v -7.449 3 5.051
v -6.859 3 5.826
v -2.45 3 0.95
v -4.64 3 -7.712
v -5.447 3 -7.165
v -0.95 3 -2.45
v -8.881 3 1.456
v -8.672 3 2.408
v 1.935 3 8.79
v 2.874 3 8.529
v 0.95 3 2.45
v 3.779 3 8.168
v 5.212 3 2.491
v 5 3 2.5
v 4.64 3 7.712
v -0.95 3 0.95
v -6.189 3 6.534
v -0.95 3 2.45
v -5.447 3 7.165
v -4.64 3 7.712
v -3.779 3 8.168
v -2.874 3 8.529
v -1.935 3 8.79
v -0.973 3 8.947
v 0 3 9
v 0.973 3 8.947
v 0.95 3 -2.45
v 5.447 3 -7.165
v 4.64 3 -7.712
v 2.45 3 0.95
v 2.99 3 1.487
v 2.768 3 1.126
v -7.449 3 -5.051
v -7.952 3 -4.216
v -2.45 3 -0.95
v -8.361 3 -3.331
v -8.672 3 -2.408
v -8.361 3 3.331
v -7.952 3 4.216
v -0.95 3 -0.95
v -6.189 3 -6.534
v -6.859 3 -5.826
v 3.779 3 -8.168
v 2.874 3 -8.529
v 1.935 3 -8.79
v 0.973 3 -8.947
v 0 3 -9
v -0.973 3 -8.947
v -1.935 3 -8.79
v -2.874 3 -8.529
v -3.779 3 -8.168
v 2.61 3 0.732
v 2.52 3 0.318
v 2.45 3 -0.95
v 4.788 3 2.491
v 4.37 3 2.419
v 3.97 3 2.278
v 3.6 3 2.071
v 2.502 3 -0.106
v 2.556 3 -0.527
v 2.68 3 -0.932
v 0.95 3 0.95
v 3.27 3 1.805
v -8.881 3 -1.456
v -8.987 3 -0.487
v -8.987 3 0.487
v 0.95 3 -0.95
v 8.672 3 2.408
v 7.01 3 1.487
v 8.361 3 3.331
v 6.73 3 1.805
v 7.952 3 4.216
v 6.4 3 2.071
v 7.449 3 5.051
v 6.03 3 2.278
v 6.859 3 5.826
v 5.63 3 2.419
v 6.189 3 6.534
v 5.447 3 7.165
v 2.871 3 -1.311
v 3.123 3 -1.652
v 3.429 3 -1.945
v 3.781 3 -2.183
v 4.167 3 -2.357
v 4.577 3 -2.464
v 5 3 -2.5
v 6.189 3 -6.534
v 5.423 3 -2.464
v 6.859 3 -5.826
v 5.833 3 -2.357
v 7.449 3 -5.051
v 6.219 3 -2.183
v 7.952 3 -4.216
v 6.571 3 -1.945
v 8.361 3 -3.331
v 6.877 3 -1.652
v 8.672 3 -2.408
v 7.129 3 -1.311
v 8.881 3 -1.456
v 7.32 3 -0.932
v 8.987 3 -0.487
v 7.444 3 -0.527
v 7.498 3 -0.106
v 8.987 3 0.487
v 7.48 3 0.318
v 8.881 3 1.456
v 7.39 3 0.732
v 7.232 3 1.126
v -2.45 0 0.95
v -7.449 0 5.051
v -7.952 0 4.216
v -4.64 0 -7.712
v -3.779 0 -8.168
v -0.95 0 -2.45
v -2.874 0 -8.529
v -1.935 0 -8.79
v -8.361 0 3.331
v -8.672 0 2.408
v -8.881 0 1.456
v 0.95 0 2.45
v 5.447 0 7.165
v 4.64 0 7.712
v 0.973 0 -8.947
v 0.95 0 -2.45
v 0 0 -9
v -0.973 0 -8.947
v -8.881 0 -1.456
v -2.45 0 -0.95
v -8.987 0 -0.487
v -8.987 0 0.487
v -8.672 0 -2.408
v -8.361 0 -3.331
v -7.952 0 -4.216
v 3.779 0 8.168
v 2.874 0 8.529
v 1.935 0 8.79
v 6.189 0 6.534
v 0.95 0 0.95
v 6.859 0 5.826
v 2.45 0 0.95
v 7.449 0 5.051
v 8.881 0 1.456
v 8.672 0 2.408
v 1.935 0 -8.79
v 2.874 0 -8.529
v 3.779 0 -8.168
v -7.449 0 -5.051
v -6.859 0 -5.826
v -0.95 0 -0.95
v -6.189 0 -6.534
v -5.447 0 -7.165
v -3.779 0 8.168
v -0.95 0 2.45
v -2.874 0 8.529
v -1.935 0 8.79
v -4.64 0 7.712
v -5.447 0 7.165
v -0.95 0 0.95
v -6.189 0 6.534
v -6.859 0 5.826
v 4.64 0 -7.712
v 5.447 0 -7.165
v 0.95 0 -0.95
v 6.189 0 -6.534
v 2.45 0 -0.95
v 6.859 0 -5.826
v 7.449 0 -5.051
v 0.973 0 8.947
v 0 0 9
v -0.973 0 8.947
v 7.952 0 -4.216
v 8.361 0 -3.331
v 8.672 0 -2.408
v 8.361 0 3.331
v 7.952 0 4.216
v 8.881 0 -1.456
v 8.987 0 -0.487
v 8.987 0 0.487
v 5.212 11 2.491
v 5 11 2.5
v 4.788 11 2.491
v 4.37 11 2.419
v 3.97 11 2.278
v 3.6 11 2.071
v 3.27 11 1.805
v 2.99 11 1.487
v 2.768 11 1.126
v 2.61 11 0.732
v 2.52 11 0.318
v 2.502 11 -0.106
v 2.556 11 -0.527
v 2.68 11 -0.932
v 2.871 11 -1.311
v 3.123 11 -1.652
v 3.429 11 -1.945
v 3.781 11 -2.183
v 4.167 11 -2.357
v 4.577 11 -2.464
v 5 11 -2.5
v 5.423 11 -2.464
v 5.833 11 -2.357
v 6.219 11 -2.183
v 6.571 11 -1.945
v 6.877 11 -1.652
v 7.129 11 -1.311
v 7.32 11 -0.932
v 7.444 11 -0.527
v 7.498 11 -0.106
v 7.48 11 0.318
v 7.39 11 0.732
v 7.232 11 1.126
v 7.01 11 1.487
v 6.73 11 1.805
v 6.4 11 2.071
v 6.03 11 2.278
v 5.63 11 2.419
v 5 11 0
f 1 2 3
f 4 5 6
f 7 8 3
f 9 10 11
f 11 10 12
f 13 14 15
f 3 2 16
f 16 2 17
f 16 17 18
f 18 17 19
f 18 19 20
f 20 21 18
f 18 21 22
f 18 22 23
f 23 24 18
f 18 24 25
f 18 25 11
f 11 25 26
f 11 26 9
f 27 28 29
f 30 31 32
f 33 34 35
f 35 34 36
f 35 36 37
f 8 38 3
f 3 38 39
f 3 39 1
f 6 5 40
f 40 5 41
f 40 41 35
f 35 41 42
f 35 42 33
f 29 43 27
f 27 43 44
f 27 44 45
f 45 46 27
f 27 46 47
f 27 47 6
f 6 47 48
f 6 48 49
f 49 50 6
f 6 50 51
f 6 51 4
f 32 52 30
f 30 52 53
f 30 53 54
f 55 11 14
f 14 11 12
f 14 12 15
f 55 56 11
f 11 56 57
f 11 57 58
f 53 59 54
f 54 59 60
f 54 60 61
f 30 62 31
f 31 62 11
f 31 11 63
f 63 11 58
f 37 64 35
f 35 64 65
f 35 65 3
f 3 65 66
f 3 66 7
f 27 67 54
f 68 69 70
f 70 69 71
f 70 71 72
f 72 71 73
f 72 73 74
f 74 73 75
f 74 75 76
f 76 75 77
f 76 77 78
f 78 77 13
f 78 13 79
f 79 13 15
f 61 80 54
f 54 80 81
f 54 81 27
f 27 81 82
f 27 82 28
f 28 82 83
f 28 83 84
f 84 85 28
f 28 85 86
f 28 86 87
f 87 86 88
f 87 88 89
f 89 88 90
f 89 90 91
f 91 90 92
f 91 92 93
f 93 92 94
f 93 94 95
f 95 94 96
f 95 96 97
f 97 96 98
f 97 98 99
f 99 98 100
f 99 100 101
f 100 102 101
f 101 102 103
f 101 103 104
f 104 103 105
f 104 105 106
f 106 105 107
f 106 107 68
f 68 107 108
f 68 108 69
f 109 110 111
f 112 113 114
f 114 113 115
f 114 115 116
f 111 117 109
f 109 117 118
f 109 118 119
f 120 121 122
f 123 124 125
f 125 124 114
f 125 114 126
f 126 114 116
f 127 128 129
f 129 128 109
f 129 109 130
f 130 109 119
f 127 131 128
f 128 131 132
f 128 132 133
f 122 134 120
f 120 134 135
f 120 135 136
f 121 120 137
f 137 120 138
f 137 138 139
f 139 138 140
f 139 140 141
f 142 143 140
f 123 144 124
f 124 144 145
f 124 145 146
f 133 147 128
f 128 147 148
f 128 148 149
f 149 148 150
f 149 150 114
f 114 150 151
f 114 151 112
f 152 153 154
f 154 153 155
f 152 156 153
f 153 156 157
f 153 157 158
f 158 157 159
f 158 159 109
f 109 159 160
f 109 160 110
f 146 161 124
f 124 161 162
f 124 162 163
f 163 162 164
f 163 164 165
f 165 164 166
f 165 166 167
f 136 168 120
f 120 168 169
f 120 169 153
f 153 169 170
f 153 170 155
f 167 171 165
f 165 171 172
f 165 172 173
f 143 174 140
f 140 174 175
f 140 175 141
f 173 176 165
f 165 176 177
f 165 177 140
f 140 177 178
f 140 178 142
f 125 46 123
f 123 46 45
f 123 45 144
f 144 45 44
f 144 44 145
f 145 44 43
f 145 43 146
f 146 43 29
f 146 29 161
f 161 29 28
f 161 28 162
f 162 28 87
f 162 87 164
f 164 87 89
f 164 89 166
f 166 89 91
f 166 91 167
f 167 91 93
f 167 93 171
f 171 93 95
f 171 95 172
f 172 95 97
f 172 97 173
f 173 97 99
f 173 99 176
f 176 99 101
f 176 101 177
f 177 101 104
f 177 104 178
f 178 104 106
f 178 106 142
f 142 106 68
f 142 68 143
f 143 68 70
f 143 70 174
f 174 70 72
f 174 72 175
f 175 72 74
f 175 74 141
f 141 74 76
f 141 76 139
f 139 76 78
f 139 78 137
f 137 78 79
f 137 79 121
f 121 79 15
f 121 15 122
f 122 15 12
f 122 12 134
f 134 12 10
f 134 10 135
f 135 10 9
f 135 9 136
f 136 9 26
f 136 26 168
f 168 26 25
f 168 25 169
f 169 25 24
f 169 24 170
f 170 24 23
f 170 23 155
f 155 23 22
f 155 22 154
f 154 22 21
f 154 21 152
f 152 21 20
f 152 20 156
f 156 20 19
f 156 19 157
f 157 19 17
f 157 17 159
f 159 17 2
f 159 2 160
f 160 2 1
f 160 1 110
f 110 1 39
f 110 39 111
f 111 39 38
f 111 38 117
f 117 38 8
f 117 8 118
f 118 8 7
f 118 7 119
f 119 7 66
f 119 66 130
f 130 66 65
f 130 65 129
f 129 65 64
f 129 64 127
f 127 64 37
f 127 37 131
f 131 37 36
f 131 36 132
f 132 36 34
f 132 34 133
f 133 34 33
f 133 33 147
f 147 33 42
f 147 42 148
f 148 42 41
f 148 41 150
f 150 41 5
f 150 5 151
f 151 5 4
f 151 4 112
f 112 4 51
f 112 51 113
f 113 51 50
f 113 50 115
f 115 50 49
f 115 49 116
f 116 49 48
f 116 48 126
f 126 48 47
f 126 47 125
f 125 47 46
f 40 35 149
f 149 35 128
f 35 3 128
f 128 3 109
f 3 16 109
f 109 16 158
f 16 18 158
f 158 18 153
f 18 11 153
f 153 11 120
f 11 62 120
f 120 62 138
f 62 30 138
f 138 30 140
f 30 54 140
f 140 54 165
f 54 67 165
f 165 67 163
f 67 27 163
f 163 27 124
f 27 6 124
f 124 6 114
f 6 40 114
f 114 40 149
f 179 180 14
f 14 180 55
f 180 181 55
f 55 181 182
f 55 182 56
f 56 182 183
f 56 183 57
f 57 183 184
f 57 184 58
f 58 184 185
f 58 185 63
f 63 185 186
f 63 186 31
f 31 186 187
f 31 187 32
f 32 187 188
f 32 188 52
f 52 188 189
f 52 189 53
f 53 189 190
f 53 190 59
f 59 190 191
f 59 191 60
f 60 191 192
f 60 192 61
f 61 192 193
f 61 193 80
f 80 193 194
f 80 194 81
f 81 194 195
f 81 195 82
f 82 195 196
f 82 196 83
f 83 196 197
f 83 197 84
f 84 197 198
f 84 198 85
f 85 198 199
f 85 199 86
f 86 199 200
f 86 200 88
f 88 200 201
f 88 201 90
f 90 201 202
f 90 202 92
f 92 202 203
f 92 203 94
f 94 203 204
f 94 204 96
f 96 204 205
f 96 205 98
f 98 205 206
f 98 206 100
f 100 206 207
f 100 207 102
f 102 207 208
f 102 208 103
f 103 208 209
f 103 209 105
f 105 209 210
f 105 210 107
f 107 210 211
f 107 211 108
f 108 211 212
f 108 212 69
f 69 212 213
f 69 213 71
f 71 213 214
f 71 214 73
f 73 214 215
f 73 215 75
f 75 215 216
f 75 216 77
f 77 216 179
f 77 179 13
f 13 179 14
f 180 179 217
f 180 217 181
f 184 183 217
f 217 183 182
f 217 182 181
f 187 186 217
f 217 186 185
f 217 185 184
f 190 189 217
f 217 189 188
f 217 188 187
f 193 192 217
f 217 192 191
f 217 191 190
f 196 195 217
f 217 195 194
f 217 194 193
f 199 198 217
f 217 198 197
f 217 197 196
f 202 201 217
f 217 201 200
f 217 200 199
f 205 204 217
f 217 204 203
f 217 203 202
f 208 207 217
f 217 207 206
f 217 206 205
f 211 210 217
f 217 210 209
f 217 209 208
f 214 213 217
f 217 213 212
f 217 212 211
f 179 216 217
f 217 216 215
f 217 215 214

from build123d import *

# Parameters (mm, degrees)
SKETCH1_R           = 9
BOSS_EXTRUDE1_DEPTH = 3
SKETCH2_R           = 2.5
BOSS_EXTRUDE2_DEPTH = 8


with BuildPart() as part:
    # Sketch1 → Boss-Extrude1 (new body)
    with BuildSketch(Plane(origin=(0, 0, 0), x_dir=(1, 0, 0), z_dir=(0, 1, 0))):
        Circle(SKETCH1_R)
        Polygon((-2.45, 0.95), (-2.45, -0.95), (-0.95, -0.95), (-0.95, -2.45), (0.95, -2.45), (0.95, -0.95), (2.45, -0.95), (2.45, 0.95), (0.95, 0.95), (0.95, 2.45), (-0.95, 2.45), (-0.95, 0.95), align=None, mode=Mode.SUBTRACT)
    extrude(amount=BOSS_EXTRUDE1_DEPTH)

    # Sketch2 → Boss-Extrude2 (add)
    with BuildSketch(Plane(origin=(0, 3, 0), x_dir=(1, 0, 0), z_dir=(0, 1, 0))):
        with Locations((5, 0)):
            Circle(SKETCH2_R)
    extrude(amount=BOSS_EXTRUDE2_DEPTH)


solid = part.part
